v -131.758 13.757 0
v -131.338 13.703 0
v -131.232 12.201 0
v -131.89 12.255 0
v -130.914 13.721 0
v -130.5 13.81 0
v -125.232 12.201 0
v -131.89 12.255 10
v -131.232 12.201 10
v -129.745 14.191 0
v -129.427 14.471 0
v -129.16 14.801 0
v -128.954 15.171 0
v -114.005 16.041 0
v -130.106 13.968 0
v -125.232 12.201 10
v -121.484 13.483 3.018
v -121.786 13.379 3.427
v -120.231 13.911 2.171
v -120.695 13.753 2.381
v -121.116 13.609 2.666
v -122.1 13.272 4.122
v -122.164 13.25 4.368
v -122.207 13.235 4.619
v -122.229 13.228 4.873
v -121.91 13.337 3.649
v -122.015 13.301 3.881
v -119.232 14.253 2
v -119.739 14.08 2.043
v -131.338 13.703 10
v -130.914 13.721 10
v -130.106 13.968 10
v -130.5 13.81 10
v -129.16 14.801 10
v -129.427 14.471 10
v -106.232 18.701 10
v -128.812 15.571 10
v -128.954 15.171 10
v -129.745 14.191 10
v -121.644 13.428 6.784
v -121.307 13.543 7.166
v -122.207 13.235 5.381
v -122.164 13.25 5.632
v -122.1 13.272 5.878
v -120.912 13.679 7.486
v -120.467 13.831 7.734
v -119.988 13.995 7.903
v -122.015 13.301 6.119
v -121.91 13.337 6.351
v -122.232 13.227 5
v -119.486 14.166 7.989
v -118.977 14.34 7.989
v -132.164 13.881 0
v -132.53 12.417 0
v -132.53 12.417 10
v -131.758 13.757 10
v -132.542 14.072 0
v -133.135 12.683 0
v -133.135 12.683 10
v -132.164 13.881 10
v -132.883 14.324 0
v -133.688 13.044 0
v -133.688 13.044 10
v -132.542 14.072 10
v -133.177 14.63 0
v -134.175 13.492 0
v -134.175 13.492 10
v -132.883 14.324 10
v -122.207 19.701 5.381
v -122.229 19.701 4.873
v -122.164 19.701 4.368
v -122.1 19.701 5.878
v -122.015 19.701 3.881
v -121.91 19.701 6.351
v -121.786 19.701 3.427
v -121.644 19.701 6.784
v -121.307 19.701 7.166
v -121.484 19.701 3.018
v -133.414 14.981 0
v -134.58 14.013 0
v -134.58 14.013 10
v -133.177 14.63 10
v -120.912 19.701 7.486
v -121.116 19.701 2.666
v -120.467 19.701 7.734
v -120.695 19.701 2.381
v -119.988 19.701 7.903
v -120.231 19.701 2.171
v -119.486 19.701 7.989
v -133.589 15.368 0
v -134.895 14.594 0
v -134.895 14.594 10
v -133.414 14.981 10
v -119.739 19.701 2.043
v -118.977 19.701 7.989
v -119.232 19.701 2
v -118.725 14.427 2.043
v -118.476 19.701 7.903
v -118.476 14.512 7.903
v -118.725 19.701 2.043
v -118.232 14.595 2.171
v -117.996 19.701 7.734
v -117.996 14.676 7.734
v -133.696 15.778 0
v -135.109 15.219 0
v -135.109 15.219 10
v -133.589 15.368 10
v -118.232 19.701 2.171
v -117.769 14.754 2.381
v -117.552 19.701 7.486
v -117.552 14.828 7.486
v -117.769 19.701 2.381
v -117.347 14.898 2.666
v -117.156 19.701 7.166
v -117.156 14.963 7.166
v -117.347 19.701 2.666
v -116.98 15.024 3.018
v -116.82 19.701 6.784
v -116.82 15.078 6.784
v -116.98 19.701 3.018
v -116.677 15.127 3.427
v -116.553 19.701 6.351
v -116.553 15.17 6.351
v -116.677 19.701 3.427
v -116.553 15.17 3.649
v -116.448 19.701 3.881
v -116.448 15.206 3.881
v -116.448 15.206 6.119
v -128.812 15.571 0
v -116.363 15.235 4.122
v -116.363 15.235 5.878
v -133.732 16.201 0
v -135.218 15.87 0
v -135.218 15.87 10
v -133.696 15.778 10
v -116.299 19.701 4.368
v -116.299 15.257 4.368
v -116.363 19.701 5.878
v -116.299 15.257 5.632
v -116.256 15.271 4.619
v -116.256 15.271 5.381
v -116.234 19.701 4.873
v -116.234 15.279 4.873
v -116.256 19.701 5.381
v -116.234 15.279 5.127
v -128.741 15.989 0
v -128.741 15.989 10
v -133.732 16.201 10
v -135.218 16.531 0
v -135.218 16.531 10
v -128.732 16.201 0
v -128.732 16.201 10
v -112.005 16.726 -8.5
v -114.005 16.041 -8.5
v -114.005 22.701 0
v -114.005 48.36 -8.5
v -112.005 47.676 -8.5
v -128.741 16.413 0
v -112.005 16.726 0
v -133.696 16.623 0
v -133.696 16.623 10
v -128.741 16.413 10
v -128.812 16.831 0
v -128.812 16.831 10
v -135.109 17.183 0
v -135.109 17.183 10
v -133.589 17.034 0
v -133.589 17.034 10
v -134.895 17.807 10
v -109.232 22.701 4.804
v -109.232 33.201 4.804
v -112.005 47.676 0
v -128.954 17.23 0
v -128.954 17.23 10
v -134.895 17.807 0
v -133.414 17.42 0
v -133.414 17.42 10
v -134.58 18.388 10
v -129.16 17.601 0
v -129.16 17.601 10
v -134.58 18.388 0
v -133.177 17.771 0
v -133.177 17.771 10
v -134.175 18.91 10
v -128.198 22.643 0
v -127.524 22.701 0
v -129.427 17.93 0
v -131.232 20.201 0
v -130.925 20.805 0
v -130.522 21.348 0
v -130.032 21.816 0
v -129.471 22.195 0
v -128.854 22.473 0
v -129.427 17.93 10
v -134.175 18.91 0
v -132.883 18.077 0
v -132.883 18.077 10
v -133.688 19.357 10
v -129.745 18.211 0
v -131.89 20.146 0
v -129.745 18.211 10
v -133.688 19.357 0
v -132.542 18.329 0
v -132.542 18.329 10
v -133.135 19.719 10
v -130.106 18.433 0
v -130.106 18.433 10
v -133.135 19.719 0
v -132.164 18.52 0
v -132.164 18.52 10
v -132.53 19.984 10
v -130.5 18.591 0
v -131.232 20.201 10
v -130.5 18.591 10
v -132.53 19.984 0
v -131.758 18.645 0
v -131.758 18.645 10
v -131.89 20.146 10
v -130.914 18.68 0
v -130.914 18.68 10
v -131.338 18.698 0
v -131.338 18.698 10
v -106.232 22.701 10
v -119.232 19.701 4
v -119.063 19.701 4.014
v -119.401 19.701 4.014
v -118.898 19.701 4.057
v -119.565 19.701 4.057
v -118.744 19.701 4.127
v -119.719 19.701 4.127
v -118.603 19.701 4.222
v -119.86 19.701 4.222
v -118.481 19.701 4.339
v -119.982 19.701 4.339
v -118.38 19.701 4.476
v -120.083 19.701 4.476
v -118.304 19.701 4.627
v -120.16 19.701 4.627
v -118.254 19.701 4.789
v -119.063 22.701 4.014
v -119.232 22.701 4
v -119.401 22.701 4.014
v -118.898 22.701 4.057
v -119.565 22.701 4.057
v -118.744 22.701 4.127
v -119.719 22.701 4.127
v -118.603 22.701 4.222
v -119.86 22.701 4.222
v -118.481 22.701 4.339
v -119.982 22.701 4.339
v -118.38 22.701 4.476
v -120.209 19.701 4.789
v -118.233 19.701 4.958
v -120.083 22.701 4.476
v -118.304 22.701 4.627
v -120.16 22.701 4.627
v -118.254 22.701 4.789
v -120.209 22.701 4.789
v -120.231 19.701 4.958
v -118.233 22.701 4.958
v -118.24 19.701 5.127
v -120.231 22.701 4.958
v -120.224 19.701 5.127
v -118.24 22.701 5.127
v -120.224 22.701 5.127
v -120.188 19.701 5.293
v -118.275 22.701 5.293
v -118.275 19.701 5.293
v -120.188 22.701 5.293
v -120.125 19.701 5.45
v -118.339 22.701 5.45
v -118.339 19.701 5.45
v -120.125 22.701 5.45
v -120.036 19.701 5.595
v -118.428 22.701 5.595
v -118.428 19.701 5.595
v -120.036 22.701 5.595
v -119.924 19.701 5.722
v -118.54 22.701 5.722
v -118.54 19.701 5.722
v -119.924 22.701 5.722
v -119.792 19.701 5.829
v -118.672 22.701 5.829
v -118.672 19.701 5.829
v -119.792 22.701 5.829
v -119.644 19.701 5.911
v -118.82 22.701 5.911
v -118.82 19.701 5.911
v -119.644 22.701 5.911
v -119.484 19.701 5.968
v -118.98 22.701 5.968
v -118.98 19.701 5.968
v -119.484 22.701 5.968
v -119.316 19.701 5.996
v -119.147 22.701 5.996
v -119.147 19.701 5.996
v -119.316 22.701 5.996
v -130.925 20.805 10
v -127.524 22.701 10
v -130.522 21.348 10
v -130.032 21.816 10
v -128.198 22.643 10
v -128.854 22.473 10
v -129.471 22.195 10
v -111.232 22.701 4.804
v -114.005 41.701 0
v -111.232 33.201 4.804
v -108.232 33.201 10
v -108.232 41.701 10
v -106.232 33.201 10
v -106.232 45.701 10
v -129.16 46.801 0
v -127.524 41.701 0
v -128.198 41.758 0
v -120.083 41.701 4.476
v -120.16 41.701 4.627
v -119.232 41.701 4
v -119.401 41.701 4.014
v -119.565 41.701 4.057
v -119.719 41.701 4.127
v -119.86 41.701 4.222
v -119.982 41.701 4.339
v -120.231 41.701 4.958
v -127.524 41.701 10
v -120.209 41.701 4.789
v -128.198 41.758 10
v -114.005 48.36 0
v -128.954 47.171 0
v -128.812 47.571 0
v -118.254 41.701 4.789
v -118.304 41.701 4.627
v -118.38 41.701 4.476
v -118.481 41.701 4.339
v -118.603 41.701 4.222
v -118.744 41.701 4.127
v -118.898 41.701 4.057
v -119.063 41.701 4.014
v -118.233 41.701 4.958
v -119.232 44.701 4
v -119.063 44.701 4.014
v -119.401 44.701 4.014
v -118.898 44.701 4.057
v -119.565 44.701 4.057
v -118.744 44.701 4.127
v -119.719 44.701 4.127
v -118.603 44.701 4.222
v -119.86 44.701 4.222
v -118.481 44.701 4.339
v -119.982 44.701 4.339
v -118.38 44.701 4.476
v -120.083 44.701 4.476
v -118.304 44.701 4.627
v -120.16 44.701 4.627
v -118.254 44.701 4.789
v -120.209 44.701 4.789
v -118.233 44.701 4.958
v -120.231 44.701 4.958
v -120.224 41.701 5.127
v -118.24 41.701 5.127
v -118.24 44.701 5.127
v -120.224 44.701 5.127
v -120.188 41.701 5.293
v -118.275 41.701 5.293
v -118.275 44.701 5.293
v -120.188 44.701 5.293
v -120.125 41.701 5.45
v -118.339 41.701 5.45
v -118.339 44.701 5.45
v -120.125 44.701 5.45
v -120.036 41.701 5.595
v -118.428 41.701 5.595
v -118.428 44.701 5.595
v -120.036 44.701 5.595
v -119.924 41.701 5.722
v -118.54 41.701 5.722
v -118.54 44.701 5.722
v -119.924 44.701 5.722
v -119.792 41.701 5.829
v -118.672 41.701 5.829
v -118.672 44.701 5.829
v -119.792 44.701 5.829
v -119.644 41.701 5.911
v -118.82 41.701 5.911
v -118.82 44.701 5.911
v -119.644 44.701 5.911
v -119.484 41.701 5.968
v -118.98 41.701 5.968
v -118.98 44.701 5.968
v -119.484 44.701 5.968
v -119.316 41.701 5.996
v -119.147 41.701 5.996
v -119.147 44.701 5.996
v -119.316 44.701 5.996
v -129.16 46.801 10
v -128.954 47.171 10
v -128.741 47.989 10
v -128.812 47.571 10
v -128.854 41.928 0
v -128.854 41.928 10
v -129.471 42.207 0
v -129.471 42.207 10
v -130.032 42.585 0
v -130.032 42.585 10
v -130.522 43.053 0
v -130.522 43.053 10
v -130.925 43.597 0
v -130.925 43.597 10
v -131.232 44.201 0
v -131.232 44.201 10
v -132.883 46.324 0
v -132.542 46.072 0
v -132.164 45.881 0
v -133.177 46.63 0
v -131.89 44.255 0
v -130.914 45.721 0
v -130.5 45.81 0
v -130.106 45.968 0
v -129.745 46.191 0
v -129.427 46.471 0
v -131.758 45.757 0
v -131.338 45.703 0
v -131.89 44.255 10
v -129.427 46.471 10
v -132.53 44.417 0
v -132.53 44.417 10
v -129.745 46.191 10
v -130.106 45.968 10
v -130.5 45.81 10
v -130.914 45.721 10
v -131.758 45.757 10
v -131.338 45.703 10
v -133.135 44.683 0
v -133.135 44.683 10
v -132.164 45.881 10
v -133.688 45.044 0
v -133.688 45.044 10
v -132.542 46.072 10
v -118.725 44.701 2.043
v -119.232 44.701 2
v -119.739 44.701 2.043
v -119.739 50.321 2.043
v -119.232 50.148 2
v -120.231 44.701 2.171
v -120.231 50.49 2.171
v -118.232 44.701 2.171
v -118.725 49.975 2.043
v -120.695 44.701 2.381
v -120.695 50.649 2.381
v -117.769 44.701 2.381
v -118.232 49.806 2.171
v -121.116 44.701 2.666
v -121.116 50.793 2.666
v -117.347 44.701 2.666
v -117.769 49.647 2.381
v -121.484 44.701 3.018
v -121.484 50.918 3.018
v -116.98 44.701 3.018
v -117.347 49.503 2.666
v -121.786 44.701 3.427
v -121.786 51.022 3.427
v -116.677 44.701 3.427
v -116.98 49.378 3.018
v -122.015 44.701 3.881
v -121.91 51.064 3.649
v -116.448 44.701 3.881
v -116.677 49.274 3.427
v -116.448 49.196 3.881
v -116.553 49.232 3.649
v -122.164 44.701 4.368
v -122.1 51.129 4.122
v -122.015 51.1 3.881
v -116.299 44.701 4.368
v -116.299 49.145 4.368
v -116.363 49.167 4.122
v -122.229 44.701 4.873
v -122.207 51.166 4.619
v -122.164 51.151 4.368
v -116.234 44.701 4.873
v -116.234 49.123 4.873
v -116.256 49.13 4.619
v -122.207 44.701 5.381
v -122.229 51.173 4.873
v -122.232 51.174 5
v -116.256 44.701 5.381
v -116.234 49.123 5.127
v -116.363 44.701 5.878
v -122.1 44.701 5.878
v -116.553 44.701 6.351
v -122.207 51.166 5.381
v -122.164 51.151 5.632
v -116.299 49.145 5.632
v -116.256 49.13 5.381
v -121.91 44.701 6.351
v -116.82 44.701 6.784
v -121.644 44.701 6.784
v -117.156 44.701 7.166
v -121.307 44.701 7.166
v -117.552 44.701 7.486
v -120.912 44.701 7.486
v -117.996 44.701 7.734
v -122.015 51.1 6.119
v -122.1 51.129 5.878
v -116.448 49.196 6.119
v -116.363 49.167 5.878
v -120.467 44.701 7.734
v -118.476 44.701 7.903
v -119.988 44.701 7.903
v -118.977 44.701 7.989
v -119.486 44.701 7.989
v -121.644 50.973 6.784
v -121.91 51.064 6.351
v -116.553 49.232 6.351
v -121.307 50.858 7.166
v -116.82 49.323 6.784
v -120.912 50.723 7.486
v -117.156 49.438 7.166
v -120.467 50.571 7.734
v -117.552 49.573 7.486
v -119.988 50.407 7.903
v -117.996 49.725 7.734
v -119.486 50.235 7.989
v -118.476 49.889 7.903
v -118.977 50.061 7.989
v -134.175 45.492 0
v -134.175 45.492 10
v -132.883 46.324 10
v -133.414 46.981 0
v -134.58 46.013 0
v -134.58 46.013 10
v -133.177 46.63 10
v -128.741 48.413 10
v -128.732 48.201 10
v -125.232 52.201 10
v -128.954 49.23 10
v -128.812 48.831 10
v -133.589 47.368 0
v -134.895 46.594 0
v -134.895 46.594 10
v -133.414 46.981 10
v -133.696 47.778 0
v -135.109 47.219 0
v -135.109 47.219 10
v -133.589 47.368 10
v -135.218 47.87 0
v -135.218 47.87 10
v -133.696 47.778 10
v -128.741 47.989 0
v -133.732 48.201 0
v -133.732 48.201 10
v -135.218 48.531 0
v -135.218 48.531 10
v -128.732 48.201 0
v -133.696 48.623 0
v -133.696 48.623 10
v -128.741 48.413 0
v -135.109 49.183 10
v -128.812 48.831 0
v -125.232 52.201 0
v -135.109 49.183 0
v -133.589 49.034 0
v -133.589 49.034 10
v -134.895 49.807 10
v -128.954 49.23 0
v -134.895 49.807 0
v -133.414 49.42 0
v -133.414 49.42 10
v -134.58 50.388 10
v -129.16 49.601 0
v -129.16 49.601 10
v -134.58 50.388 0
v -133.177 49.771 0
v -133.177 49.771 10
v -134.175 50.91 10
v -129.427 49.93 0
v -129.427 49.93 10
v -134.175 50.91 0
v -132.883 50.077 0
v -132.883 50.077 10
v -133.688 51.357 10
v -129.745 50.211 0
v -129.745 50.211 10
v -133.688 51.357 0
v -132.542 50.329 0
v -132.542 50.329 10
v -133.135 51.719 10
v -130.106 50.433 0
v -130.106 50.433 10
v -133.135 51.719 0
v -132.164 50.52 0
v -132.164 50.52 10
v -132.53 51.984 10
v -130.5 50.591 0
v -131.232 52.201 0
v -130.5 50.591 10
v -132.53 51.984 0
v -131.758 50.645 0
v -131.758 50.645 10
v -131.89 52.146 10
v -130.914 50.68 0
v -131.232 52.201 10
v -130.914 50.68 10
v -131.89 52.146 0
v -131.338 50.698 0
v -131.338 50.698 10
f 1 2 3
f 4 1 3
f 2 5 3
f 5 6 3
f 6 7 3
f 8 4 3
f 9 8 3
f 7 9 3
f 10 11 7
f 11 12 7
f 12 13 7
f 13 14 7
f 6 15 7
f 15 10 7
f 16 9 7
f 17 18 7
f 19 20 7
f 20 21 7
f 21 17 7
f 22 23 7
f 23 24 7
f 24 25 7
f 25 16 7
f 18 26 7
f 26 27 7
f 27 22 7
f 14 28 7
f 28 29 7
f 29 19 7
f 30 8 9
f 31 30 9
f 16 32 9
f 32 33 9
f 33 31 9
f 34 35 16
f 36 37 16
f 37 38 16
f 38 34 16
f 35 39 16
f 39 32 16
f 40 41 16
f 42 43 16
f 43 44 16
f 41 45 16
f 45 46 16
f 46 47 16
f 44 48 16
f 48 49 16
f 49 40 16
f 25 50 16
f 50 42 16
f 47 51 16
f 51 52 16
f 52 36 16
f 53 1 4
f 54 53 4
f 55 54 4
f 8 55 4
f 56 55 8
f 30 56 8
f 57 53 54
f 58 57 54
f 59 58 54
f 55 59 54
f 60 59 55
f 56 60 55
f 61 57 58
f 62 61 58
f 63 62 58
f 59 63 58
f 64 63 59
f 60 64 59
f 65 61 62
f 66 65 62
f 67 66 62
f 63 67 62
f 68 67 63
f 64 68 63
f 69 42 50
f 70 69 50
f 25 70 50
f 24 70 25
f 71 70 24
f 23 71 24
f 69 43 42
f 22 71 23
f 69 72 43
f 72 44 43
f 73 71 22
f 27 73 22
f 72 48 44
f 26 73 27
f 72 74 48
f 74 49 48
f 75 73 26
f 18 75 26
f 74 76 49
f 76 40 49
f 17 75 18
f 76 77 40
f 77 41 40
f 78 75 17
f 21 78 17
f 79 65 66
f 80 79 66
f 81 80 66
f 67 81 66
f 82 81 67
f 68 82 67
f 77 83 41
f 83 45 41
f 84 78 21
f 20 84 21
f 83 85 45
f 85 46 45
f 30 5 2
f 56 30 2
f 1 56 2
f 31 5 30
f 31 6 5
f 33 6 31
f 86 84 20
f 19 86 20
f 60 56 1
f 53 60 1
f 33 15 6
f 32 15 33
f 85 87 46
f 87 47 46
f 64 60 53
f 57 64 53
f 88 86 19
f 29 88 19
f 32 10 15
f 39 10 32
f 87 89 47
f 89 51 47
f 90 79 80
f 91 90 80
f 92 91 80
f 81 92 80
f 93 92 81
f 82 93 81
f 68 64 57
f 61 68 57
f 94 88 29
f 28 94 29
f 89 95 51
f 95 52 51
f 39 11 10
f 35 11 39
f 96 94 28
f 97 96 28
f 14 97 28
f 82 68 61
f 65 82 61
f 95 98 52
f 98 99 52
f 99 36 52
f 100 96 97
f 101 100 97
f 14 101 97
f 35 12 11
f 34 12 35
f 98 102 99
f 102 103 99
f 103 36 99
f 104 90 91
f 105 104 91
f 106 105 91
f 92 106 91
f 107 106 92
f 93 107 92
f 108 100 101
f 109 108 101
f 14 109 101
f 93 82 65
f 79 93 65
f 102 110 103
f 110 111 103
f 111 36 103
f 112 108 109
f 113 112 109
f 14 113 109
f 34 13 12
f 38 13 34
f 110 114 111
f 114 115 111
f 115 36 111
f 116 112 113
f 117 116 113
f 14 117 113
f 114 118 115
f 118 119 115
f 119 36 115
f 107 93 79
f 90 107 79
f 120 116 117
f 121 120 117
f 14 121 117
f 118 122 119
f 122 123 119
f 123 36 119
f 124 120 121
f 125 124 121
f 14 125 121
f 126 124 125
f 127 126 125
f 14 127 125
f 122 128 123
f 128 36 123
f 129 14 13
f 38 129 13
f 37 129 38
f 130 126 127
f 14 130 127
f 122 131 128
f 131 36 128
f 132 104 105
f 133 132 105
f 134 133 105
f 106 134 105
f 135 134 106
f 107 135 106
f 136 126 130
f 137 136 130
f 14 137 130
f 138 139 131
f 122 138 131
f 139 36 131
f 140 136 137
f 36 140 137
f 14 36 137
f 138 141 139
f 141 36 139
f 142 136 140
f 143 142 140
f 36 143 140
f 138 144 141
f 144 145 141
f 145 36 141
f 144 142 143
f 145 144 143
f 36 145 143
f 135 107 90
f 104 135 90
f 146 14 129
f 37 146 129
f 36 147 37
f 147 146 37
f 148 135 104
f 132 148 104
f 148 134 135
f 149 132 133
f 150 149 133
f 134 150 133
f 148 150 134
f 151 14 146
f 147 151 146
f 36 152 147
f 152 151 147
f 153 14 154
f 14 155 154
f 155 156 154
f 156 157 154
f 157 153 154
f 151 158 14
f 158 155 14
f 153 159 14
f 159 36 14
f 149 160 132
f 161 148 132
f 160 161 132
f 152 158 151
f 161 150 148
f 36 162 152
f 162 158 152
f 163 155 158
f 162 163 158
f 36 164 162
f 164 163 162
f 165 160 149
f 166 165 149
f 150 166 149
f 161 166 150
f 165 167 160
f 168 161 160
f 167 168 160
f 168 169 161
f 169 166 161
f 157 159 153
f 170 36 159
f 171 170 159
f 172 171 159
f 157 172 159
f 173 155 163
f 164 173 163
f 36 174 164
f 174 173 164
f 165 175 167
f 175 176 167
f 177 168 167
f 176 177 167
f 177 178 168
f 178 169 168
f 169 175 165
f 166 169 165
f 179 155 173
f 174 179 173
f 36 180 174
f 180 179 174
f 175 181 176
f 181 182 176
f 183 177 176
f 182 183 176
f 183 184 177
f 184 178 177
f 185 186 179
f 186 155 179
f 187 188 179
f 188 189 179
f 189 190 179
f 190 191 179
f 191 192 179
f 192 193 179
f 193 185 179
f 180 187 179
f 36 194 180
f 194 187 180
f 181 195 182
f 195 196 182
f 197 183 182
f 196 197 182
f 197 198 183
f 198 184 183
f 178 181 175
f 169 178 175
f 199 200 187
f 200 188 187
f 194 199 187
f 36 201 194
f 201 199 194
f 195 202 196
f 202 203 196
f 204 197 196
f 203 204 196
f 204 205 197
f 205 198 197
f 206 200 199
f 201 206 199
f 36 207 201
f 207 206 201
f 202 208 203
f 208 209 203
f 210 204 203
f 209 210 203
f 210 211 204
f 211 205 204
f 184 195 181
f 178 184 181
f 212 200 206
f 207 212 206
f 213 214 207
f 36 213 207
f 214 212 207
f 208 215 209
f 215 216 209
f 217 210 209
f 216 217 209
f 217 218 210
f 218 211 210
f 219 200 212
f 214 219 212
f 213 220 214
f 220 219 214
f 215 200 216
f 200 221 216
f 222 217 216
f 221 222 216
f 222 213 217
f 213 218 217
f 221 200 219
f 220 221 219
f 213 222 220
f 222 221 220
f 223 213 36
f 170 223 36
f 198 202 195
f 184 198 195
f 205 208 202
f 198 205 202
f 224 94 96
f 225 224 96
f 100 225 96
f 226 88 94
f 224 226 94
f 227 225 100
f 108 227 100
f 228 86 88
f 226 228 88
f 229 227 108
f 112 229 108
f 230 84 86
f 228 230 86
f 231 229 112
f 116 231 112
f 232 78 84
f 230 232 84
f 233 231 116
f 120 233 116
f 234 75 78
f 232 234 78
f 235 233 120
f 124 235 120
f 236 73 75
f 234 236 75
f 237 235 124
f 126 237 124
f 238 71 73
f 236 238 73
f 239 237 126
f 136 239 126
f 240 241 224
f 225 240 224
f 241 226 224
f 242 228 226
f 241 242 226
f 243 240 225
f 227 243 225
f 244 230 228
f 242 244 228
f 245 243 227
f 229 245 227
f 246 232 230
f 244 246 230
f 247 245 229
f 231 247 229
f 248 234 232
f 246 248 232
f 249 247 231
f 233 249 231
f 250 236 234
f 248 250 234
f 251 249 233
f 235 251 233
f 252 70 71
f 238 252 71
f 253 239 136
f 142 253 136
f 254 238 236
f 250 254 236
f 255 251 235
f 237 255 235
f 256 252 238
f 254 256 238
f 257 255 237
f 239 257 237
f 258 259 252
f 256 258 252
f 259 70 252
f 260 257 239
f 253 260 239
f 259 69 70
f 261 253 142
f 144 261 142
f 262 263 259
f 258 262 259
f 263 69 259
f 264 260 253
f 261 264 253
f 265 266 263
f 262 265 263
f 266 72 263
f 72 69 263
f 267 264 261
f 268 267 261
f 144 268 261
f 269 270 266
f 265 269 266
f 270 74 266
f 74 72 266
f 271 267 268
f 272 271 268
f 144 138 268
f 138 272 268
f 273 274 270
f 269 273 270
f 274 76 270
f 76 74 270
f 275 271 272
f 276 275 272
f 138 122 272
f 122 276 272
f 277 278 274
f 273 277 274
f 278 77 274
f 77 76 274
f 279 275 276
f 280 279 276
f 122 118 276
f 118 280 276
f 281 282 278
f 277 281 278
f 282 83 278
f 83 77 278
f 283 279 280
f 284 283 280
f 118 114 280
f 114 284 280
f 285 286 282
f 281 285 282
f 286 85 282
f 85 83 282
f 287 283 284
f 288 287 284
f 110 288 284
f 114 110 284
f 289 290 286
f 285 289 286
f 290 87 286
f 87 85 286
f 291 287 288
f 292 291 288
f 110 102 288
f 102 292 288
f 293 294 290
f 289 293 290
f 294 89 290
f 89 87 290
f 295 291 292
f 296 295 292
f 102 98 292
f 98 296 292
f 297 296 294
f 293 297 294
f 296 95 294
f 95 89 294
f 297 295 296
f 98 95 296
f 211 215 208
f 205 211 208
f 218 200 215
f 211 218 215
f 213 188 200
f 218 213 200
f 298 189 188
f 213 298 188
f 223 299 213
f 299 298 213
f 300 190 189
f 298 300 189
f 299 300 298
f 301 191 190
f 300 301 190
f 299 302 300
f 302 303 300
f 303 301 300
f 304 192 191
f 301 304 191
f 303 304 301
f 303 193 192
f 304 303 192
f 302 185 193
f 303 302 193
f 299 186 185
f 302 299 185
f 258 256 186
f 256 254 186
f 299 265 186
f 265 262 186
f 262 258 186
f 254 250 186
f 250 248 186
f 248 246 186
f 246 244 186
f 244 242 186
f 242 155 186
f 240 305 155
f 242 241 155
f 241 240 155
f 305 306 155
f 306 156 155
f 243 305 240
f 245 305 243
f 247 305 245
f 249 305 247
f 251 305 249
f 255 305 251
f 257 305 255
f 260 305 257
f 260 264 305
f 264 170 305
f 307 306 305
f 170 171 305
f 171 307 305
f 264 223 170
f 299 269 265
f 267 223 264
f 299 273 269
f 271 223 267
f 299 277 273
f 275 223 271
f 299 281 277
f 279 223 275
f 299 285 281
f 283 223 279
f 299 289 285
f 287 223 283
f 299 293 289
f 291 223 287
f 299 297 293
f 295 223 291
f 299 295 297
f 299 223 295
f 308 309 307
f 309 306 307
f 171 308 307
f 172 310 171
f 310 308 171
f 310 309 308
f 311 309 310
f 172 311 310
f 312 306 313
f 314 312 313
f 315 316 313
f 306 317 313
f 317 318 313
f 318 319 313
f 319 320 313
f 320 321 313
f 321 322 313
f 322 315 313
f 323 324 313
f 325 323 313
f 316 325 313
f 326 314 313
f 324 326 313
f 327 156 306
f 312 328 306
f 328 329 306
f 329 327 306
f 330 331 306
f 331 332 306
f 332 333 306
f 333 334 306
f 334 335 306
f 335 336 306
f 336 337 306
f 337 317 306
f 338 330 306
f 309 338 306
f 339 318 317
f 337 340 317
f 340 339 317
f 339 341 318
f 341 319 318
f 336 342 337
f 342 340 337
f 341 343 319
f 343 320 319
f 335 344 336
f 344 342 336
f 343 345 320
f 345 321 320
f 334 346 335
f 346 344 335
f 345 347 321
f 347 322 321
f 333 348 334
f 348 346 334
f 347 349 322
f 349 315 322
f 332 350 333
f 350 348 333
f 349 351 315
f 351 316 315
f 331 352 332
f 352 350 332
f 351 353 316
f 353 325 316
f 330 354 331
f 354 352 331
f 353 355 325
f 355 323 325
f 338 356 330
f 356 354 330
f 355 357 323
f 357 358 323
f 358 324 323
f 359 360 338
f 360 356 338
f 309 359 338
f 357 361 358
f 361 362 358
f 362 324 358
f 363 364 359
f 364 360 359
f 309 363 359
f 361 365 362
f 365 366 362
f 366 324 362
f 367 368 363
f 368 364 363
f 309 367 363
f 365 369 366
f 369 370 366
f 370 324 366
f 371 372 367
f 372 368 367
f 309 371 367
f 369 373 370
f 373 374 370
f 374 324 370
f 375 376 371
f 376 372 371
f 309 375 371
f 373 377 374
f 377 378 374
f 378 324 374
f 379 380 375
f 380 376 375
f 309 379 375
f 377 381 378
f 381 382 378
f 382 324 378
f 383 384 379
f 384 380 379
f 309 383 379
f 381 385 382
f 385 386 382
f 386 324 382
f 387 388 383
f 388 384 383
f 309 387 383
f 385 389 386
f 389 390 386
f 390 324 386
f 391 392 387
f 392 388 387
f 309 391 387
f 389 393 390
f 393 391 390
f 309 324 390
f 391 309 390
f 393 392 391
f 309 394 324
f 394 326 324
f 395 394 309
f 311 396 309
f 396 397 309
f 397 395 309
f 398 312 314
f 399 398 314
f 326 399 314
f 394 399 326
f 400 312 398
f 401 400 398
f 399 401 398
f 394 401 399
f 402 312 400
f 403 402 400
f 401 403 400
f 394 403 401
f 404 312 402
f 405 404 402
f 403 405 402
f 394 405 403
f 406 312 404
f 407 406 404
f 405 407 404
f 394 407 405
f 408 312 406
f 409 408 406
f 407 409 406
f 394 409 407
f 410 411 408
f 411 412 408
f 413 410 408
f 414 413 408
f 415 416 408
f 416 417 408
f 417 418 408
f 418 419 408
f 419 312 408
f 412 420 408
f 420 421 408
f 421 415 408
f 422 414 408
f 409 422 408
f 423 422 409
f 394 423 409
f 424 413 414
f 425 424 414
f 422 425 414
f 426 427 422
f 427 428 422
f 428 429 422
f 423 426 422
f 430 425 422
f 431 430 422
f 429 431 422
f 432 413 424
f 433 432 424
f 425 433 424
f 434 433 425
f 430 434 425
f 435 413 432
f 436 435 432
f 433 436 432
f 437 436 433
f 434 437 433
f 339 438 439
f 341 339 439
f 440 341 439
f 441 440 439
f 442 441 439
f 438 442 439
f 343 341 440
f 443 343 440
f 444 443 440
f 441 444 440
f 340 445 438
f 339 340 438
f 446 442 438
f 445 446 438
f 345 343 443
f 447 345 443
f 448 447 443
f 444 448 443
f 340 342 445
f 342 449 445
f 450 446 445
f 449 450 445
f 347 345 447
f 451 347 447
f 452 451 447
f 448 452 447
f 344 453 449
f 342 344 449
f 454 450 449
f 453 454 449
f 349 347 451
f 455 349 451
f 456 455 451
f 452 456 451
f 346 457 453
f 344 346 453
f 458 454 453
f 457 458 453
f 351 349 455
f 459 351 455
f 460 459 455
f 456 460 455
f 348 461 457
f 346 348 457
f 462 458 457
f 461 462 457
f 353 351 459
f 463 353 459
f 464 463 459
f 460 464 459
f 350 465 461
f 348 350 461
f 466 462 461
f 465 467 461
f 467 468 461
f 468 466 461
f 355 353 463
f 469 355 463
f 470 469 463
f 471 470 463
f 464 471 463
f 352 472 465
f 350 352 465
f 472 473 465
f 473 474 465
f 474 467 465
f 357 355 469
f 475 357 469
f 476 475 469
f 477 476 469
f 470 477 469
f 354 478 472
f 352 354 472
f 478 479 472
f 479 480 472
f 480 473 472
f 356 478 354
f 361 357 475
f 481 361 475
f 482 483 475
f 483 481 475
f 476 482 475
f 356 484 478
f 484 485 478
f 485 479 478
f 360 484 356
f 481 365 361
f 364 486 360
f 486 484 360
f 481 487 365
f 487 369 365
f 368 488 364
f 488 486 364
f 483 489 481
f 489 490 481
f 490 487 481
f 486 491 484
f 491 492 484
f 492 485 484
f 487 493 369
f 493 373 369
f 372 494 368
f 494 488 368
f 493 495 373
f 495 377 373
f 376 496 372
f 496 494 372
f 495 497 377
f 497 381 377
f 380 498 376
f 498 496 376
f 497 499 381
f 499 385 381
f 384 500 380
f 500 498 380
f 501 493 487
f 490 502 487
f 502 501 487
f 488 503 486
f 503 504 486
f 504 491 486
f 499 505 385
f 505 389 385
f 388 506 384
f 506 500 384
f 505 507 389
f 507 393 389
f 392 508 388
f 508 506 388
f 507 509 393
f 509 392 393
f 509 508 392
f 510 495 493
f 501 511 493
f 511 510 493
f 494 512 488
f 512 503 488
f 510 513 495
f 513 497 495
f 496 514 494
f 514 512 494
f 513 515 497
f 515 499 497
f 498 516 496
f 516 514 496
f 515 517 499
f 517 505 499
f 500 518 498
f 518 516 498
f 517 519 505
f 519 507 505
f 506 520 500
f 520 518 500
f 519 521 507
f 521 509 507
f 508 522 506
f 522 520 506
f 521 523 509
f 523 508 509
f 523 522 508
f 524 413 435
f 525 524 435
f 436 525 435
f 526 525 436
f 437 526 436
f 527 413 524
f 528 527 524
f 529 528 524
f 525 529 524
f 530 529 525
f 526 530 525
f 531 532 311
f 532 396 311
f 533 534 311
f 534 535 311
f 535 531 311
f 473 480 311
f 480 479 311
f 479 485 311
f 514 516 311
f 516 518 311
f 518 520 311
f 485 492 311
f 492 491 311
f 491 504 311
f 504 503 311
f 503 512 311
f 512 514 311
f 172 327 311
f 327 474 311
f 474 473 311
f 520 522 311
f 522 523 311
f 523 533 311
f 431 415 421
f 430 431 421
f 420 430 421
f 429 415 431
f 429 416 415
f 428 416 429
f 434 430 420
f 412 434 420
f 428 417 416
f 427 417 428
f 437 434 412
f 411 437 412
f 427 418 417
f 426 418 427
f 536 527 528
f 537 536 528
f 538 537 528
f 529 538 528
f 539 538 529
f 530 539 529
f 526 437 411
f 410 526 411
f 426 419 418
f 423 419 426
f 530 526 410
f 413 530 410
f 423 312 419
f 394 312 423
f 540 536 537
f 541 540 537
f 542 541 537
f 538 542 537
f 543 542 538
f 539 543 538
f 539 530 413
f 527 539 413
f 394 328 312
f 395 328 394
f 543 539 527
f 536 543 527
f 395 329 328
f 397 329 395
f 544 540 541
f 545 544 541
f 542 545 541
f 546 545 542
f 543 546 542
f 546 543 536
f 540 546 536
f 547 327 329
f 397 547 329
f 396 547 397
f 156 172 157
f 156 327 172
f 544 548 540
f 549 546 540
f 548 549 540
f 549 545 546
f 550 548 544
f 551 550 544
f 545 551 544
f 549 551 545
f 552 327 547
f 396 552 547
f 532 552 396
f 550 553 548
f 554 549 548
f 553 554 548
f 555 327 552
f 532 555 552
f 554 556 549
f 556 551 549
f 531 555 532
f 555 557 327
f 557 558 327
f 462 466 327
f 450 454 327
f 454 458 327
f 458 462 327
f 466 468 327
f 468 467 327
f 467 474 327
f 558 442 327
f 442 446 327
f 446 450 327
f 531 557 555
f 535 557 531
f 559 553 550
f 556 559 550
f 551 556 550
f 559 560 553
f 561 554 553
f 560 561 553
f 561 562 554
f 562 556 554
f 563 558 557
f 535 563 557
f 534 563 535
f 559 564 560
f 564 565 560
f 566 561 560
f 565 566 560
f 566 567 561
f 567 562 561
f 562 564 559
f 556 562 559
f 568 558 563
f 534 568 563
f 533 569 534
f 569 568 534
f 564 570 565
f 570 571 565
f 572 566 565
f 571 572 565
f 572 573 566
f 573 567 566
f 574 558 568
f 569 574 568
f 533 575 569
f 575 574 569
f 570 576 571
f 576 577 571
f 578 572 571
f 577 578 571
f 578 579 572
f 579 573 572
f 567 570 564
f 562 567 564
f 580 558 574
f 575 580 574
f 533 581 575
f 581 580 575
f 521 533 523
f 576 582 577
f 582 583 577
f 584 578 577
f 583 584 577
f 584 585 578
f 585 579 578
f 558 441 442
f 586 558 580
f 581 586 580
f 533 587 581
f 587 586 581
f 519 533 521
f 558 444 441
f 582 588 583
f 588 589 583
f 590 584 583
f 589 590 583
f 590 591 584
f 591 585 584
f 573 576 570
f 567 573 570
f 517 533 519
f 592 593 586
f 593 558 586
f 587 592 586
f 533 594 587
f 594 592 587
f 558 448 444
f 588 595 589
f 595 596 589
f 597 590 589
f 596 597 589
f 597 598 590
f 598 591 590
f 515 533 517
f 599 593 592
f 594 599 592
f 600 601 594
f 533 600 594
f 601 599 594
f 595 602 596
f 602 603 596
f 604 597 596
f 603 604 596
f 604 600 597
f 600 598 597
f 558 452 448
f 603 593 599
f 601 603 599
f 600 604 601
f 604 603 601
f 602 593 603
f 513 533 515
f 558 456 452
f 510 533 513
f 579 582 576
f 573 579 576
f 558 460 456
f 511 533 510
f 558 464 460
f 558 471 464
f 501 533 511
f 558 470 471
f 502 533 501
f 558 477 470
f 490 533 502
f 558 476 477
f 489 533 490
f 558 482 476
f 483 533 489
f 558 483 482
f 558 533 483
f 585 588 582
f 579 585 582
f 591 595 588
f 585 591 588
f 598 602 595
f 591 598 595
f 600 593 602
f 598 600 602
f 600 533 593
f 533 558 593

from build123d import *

# Parameters (mm, degrees)
CROQUIS1_R                = 2.5
SALIENTE_EXTRUIR1_DEPTH   = 10
CROQUIS2_R                = 1
CORTAR_EXTRUIR1_DEPTH     = 4
SALIENTE_EXTRUIR2_DEPTH   = 13.5
CROQUIS4_R                = 3
CORTAR_EXTRUIR2_DEPTH     = 1
SALIENTE_EXTRUIR3_START   = 6.5
CROQUIS6_R                = 3
SALIENTE_EXTRUIR3_DEPTH   = 6.5
CORTAR_EXTRUIR4_DEPTH     = 10
SALIENTE_EXTRUIR4_DEPTH   = 8.5
CORTAR_EXTRUIR5_START     = -5.196152423
CORTAR_EXTRUIR5_OUTLINE_W = 8
CORTAR_EXTRUIR5_OUTLINE_H = 10.5
CORTAR_EXTRUIR5_DEPTH     = 5.196152423
REDONDEO1_R               = 4


# Read off the part's stored shape, not the designer's step: Cortar-Extruir5
with BuildPart() as part:
    # Croquis1 → Saliente-Extruir1 (new body)
    with BuildSketch(Plane.XY):
        with BuildLine():
            Line((-106.231635218, 22.700651543), (-131.231635218, 22.700651543))
            Line((-131.231635218, 22.700651543), (-131.231635218, 20.200651543))
            ThreePointArc((-131.231635218, 20.200651543), (-135.231635218, 16.200651543), (-131.231635218, 12.200651543))
            Line((-131.231635218, 12.200651543), (-125.231635218, 12.200651543))
            Line((-125.231635218, 12.200651543), (-125.231635218, 18.700651543))
            Line((-125.231635218, 18.700651543), (-106.231635218, 18.700651543))
            Line((-106.231635218, 18.700651543), (-106.231635218, 22.700651543))
        make_face()
        with Locations((-131.231635218, 16.200651543)):
            Circle(CROQUIS1_R, mode=Mode.SUBTRACT)
    extrude(amount=SALIENTE_EXTRUIR1_DEPTH)

    # Croquis2 → Cortar-Extruir1 (cut)
    with BuildSketch(Plane.XZ.offset(-18.700651543)):
        with Locations(Location((-119.231635218, 5, 0), (0, 0, 270))):
            Circle(CROQUIS2_R)
        Polygon((-106.231635218, 0), (-106.231635218, 10), (-112.00513791, 0), align=None)
    extrude(amount=-CORTAR_EXTRUIR1_DEPTH, mode=Mode.SUBTRACT)

    # Croquis3 → Saliente-Extruir2 (add)
    with BuildSketch(Plane.XZ.offset(-18.700651543)):
        Polygon((-106.231635218, 10), (-108.231635218, 10), (-114.00513791, 0), (-112.00513791, 0), align=None)
    extrude(amount=-SALIENTE_EXTRUIR2_DEPTH)

    # Croquis4 → Cortar-Extruir2 (cut)
    with BuildSketch(Plane.XZ.offset(-18.700651543)):
        with Locations(Location((-119.231635218, 5, 0), (0, 0, 270))):
            Circle(CROQUIS4_R)
    extrude(amount=-CORTAR_EXTRUIR2_DEPTH, mode=Mode.SUBTRACT)

    # Croquis6 → Saliente-Extruir3 (add)
    with BuildSketch(Plane.XZ.offset(-18.700651543).offset(SALIENTE_EXTRUIR3_START)):
        Polygon((-125.231635218, 10), (-106.231635218, 10), (-112.00513791, 0), (-125.231635218, 0), align=None)
        with Locations(Location((-119.231635218, 5, 0), (0, 0, 270))):
            Circle(CROQUIS6_R, mode=Mode.SUBTRACT)
    extrude(amount=-SALIENTE_EXTRUIR3_DEPTH)

    # Croquis7 → Cortar-Extruir4 (cut)
    with BuildSketch(Plane.XY.offset(10)):
        Polygon((-106.231635218, 18.700651543), (-106.231635218, 12.200651543), (-125.231635218, 12.200651543), align=None)
    extrude(amount=-CORTAR_EXTRUIR4_DEPTH, mode=Mode.SUBTRACT)

    # Croquis8 → Saliente-Extruir4 (add)
    with BuildSketch(Plane(origin=(0, 0, 0), x_dir=(-1, 0, 0), z_dir=(0, 0, -1))):
        Polygon((112.00513791, 16.725505885), (112.00513791, 32.200651543), (114.00513791, 32.200651543), (114.00513791, 22.700651543), (114.00513791, 16.041295359), align=None)
    extrude(amount=SALIENTE_EXTRUIR4_DEPTH)

    # Simetría1: part across plane


with BuildPart() as part_1:
    add(part.part)
    add(part.part.mirror(Plane(origin=(0, 32.200651543, 0), x_dir=(0, 0, 1), z_dir=(0, -1, 0))))

    # Cortar-Extruir5 outline → Cortar-Extruir5 (cut)
    with BuildSketch(Plane.XY.offset(10).offset(CORTAR_EXTRUIR5_START)):
        with Locations((-109, 27.950651543)):
            Rectangle(CORTAR_EXTRUIR5_OUTLINE_W, CORTAR_EXTRUIR5_OUTLINE_H)
    extrude(amount=CORTAR_EXTRUIR5_DEPTH, mode=Mode.SUBTRACT)

    # Redondeo1
    # the kernel refuses this fillet: 4 mm, written as the material it takes off along each edge
    with BuildSketch(Plane(origin=(-131.231635218, 41.700651543, -9.270248109), x_dir=(1, 0, 0), z_dir=(0, 0, 1))) as redondeo1_piece_1:
        with BuildLine():
            CenterArc((3.708099244, 4), REDONDEO1_R, 202.024312837, 67.975687163)
            Line((0, 2.5), (-0.074161985, 2.47))
            ThreePointArc((-0.074161985, 2.47), (-0.08, 1.25), (-0.08, 0))
            Line((-0.08, 0), (0, -0.08))
            Line((0, -0.08), (3.708099244, -0.08))
            Line((3.708099244, -0.08), (3.708099244, 0))
        make_face()
    extrude(amount=28.540496218, mode=Mode.SUBTRACT)
    with BuildSketch(Plane(origin=(-131.231635218, 22.700651543, -9.270248109), x_dir=(0, -1, 0), z_dir=(0, 0, 1))) as redondeo1_piece_2:
        with BuildLine():
            CenterArc((4, 3.708099244), REDONDEO1_R, 180, 67.975687168)
            Line((0, 3.708099244), (-0.08, 3.708099244))
            Line((-0.08, 3.708099244), (-0.08, 0))
            Line((-0.08, 0), (0, -0.08))
            ThreePointArc((0, -0.08), (1.25, -0.08), (2.47, -0.074161985))
            Line((2.47, -0.074161985), (2.5, 0))
        make_face()
    extrude(amount=28.540496218, mode=Mode.SUBTRACT)


solid = part_1.part
